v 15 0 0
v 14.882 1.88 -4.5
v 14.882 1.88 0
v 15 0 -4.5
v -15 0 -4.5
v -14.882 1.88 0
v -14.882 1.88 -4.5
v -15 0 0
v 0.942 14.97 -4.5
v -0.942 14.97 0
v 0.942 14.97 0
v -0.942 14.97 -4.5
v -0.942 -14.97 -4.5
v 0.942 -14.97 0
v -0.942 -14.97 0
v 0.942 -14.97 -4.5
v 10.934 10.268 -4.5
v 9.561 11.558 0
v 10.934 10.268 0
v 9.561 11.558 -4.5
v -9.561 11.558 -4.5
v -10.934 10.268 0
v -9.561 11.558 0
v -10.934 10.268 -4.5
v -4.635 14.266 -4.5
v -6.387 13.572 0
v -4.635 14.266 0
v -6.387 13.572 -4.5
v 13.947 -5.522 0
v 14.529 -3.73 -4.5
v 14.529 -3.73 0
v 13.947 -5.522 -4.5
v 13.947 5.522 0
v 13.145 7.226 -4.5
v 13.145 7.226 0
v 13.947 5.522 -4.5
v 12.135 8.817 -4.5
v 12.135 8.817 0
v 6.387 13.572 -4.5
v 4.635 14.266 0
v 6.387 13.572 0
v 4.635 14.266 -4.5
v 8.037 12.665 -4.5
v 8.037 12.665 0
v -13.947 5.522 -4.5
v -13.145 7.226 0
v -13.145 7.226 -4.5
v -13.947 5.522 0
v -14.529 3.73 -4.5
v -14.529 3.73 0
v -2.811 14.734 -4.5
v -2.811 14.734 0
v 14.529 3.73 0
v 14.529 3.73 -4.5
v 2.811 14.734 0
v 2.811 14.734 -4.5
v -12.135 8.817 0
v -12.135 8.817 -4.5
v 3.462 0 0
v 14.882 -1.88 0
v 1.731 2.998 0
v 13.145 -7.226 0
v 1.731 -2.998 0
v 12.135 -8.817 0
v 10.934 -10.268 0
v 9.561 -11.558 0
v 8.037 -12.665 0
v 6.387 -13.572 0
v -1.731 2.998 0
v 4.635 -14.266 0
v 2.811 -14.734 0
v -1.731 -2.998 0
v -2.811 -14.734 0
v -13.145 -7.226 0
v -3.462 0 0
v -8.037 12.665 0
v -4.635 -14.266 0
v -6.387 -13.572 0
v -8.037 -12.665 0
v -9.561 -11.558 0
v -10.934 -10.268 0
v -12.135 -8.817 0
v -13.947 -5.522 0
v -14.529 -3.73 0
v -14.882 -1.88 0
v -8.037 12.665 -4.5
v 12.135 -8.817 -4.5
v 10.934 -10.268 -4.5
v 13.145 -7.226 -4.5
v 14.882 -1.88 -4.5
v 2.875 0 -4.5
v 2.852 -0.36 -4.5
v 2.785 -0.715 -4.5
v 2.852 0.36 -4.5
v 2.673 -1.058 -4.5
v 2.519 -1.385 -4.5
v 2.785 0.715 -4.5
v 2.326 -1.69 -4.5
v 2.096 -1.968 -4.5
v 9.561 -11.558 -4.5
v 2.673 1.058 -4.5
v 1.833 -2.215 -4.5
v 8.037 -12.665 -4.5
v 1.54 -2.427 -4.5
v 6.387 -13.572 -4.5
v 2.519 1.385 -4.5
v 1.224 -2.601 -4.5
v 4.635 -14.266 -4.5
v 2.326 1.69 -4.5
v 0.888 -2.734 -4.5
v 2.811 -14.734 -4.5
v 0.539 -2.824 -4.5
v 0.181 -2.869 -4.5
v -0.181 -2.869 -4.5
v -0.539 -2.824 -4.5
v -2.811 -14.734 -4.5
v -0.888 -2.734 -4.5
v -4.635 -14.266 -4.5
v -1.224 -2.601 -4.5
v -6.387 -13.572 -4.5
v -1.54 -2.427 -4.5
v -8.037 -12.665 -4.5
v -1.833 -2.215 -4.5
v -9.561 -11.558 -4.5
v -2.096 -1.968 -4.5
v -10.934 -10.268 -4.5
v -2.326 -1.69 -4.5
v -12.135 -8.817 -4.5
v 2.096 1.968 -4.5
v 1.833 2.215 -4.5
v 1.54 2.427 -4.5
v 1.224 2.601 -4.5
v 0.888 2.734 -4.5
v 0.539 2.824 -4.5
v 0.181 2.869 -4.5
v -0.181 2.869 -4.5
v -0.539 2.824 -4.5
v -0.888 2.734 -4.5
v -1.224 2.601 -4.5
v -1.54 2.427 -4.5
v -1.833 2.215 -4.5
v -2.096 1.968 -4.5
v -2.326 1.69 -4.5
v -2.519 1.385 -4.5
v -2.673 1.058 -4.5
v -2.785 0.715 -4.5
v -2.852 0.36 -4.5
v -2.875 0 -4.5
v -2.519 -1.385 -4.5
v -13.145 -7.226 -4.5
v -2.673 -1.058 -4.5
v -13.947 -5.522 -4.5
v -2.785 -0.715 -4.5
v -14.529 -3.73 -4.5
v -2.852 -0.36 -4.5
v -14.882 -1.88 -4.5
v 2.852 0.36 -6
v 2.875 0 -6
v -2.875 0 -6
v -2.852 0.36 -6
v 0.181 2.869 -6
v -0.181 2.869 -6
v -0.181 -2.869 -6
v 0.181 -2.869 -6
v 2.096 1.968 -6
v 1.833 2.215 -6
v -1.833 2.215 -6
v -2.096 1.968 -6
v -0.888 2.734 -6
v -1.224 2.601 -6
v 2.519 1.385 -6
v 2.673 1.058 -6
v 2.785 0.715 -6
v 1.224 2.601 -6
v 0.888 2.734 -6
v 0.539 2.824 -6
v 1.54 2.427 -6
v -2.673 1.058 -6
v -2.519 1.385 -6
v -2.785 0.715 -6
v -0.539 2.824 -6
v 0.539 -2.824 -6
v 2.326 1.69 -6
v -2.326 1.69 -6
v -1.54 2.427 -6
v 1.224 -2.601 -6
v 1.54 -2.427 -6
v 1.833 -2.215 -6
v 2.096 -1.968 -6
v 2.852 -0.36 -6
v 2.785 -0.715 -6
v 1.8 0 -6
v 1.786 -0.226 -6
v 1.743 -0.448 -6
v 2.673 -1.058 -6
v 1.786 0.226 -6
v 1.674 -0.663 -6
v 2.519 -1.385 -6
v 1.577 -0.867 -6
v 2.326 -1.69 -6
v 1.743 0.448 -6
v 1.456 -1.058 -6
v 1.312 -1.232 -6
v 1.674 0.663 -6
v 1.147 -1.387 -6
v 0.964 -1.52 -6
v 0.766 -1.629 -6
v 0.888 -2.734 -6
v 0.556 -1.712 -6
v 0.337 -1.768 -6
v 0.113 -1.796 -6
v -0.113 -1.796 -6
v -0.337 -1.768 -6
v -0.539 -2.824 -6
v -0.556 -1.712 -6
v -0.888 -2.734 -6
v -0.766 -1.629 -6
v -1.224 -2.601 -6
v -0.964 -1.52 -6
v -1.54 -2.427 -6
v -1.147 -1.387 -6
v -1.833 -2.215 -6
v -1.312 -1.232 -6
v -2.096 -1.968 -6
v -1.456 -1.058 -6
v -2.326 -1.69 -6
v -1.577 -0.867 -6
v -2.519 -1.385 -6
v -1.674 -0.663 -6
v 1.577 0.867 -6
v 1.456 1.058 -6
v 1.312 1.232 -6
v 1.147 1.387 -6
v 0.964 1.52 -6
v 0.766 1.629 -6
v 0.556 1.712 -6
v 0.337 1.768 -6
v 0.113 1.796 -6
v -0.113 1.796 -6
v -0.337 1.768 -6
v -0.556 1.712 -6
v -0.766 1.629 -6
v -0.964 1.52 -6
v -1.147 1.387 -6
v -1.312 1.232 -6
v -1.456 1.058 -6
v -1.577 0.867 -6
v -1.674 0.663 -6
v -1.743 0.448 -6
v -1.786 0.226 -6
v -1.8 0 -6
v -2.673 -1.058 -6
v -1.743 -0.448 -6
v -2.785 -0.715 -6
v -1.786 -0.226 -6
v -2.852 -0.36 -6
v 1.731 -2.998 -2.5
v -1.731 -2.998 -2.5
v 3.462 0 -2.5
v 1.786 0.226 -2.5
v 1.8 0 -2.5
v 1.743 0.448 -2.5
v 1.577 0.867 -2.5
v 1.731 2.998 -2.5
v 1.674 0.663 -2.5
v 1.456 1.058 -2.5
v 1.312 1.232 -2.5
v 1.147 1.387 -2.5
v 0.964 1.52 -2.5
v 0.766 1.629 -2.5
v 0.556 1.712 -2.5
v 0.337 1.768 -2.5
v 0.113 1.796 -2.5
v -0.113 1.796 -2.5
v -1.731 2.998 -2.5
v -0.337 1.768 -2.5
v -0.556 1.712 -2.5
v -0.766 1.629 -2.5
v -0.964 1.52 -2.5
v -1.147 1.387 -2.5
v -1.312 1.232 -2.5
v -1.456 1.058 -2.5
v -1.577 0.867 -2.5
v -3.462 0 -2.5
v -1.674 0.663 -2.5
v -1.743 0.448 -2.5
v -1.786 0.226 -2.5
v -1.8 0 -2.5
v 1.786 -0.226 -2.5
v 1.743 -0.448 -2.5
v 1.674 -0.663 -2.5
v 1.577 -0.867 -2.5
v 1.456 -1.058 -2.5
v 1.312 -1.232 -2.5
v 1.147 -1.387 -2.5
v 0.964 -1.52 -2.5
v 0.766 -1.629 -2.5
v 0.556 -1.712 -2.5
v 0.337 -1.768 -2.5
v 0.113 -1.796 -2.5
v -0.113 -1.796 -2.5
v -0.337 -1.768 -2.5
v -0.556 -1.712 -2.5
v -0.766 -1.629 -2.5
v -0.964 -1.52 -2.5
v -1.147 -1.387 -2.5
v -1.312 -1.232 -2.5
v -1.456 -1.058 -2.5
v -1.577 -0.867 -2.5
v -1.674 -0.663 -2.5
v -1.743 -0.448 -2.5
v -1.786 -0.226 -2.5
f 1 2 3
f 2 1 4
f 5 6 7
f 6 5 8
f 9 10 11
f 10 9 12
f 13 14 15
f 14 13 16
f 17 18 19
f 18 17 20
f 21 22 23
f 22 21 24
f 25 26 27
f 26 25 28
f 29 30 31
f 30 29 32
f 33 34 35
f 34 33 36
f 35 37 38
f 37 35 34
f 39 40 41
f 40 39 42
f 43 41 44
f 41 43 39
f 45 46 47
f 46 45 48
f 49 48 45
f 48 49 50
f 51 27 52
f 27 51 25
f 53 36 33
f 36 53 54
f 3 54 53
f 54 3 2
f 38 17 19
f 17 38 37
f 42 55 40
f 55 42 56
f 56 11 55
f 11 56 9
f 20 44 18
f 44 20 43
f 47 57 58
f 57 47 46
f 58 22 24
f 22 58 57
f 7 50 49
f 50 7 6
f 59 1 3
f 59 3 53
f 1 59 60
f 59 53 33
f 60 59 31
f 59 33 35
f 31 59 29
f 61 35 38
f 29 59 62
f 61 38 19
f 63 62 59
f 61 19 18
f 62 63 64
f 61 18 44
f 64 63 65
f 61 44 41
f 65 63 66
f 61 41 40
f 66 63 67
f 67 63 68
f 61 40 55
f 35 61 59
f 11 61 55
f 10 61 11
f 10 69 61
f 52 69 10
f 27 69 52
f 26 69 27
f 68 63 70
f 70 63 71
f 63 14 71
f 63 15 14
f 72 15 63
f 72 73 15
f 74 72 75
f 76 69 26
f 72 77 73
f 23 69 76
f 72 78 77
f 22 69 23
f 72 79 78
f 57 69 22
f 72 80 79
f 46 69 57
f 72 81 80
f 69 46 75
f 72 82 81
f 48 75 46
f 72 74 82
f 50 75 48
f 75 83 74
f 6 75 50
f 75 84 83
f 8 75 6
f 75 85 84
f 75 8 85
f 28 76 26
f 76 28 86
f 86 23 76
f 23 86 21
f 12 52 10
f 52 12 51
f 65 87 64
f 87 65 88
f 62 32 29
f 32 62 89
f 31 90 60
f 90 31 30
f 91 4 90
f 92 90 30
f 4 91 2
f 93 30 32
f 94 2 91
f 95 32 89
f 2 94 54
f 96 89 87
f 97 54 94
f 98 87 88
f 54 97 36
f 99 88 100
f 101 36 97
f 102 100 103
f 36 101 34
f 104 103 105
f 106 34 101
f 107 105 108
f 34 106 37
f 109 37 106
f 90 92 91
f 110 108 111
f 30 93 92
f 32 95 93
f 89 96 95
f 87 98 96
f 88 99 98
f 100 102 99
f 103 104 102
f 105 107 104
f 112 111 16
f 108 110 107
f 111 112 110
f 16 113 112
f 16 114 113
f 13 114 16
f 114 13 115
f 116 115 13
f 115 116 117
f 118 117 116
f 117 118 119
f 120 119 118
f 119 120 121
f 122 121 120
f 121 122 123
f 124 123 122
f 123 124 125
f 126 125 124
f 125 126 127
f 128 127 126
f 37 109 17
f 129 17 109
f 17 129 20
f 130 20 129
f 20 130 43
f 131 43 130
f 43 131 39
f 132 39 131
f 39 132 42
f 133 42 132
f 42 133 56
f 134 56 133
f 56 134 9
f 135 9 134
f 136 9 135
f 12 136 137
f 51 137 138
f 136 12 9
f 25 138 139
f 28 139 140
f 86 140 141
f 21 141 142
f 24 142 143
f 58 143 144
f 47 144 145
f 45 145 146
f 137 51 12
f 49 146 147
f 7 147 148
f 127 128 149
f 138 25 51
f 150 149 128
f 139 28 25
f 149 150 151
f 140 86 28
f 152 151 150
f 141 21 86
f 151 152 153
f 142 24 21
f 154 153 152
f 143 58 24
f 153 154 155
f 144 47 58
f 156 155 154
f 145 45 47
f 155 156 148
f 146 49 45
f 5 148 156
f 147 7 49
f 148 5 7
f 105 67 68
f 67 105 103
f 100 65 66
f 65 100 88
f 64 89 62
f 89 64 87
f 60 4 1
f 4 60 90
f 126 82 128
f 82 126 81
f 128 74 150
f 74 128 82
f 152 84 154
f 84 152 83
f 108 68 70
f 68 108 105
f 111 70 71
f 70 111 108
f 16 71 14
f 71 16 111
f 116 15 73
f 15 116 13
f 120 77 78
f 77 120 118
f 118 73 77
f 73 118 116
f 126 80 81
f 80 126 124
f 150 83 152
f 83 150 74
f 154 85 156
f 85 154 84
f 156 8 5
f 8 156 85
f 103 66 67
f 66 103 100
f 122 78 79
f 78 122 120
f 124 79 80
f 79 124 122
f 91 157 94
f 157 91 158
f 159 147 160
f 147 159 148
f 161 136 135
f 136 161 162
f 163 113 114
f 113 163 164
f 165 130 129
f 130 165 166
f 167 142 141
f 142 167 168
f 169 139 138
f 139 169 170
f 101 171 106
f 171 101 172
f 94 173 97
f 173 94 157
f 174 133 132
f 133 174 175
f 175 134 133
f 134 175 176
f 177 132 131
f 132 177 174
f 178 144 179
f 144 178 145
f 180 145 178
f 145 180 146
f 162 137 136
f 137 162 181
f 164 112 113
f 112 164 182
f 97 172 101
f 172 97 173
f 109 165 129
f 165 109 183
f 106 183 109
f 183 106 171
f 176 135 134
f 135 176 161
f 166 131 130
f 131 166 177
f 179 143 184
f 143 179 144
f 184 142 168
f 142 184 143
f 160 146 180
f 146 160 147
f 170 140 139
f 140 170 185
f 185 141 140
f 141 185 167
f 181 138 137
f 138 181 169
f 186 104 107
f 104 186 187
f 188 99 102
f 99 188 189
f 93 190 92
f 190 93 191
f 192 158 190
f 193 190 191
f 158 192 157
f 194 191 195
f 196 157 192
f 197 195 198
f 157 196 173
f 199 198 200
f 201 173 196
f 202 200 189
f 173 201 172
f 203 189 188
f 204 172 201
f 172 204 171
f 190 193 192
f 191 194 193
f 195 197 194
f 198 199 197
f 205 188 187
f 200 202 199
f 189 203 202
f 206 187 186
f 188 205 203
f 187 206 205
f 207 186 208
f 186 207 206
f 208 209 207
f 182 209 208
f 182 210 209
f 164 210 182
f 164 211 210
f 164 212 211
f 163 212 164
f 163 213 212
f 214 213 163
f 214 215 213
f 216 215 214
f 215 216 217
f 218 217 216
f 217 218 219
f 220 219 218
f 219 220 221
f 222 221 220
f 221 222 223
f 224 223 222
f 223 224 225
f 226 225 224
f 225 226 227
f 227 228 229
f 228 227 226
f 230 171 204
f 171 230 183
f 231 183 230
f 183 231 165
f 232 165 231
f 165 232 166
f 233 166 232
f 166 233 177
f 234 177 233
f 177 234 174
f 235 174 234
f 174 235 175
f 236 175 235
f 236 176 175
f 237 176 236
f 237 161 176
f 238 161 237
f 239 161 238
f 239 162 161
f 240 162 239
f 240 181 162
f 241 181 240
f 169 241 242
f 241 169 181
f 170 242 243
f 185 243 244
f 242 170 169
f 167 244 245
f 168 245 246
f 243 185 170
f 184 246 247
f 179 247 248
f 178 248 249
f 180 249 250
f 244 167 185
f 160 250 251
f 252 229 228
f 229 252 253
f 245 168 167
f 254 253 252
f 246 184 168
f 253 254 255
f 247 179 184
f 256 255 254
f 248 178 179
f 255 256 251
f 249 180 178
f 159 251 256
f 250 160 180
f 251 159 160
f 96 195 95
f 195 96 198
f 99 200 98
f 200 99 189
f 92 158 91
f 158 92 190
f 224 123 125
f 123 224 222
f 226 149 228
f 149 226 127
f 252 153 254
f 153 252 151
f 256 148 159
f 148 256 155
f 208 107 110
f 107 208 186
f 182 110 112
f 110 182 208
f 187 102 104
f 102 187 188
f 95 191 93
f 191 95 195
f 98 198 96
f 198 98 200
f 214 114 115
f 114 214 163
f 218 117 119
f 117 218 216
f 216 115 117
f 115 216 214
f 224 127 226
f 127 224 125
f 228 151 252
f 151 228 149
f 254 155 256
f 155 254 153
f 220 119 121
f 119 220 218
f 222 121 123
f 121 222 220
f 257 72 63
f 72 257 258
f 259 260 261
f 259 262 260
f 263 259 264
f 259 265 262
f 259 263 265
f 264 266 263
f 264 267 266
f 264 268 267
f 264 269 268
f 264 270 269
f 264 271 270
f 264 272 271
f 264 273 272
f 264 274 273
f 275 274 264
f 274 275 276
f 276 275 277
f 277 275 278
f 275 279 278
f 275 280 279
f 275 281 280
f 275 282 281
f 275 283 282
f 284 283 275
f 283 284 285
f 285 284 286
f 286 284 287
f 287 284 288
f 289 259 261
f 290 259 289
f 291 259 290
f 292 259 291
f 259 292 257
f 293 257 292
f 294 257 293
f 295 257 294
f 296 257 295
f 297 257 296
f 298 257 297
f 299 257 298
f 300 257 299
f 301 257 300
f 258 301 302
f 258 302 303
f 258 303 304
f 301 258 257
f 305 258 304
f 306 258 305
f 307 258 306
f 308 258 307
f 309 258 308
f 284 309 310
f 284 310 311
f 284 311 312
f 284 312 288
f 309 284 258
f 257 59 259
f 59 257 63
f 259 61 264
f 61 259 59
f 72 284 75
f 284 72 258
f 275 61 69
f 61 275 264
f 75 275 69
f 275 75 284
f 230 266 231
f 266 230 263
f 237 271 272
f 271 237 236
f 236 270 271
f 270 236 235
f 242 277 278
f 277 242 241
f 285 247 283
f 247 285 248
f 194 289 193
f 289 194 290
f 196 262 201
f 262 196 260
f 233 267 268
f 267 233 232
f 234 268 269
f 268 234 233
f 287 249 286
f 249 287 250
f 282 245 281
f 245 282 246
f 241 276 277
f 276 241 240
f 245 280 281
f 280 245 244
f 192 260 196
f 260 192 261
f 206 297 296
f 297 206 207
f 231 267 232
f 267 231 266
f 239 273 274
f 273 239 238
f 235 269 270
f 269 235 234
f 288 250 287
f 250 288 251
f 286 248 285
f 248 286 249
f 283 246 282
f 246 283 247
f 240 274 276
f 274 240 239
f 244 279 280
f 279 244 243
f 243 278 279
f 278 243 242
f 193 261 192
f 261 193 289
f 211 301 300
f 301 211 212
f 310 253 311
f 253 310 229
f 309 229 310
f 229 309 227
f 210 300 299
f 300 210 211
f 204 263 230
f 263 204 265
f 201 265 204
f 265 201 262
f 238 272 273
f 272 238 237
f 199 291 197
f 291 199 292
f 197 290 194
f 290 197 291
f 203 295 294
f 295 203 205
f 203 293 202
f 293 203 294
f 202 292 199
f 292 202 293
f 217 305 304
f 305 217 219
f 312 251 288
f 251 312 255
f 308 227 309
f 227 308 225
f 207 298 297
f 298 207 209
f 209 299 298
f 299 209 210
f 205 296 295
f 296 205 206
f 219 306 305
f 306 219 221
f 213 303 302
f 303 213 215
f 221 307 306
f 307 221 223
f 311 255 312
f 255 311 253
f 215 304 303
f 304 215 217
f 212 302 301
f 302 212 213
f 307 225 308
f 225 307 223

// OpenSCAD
$fn = 50;

difference() {
	union() {
		translate(v = [0, 0, -4.5]) {
			cylinder(h = 4.5, r = 15.0);
		}
		#translate(v = [0, 0, -6.0]) {
			cylinder(h = 6, r = 2.875);
		}
	}
	union() {
		translate(v = [0, 0, 0]) {
			rotate(a = [0, 0, 0]) {
				difference() {
					union() {
						translate(v = [0, 0, -2.5]) {
							linear_extrude(height = 2.5) {
								polygon(points = [[3.4619999999999997, 0.0], [1.7310000000000003, 2.9981799479017264], [-1.7309999999999992, 2.9981799479017264], [-3.4619999999999997, 4.2397272186481365e-16], [-1.7310000000000014, -2.998179947901726], [1.7309999999999977, -2.9981799479017277]]);
							}
						}
					}
					union();
				}
			}
		}
		#translate(v = [0, 0, -100.0]) {
			cylinder(h = 200, r = 1.8);
		}
	}
}
